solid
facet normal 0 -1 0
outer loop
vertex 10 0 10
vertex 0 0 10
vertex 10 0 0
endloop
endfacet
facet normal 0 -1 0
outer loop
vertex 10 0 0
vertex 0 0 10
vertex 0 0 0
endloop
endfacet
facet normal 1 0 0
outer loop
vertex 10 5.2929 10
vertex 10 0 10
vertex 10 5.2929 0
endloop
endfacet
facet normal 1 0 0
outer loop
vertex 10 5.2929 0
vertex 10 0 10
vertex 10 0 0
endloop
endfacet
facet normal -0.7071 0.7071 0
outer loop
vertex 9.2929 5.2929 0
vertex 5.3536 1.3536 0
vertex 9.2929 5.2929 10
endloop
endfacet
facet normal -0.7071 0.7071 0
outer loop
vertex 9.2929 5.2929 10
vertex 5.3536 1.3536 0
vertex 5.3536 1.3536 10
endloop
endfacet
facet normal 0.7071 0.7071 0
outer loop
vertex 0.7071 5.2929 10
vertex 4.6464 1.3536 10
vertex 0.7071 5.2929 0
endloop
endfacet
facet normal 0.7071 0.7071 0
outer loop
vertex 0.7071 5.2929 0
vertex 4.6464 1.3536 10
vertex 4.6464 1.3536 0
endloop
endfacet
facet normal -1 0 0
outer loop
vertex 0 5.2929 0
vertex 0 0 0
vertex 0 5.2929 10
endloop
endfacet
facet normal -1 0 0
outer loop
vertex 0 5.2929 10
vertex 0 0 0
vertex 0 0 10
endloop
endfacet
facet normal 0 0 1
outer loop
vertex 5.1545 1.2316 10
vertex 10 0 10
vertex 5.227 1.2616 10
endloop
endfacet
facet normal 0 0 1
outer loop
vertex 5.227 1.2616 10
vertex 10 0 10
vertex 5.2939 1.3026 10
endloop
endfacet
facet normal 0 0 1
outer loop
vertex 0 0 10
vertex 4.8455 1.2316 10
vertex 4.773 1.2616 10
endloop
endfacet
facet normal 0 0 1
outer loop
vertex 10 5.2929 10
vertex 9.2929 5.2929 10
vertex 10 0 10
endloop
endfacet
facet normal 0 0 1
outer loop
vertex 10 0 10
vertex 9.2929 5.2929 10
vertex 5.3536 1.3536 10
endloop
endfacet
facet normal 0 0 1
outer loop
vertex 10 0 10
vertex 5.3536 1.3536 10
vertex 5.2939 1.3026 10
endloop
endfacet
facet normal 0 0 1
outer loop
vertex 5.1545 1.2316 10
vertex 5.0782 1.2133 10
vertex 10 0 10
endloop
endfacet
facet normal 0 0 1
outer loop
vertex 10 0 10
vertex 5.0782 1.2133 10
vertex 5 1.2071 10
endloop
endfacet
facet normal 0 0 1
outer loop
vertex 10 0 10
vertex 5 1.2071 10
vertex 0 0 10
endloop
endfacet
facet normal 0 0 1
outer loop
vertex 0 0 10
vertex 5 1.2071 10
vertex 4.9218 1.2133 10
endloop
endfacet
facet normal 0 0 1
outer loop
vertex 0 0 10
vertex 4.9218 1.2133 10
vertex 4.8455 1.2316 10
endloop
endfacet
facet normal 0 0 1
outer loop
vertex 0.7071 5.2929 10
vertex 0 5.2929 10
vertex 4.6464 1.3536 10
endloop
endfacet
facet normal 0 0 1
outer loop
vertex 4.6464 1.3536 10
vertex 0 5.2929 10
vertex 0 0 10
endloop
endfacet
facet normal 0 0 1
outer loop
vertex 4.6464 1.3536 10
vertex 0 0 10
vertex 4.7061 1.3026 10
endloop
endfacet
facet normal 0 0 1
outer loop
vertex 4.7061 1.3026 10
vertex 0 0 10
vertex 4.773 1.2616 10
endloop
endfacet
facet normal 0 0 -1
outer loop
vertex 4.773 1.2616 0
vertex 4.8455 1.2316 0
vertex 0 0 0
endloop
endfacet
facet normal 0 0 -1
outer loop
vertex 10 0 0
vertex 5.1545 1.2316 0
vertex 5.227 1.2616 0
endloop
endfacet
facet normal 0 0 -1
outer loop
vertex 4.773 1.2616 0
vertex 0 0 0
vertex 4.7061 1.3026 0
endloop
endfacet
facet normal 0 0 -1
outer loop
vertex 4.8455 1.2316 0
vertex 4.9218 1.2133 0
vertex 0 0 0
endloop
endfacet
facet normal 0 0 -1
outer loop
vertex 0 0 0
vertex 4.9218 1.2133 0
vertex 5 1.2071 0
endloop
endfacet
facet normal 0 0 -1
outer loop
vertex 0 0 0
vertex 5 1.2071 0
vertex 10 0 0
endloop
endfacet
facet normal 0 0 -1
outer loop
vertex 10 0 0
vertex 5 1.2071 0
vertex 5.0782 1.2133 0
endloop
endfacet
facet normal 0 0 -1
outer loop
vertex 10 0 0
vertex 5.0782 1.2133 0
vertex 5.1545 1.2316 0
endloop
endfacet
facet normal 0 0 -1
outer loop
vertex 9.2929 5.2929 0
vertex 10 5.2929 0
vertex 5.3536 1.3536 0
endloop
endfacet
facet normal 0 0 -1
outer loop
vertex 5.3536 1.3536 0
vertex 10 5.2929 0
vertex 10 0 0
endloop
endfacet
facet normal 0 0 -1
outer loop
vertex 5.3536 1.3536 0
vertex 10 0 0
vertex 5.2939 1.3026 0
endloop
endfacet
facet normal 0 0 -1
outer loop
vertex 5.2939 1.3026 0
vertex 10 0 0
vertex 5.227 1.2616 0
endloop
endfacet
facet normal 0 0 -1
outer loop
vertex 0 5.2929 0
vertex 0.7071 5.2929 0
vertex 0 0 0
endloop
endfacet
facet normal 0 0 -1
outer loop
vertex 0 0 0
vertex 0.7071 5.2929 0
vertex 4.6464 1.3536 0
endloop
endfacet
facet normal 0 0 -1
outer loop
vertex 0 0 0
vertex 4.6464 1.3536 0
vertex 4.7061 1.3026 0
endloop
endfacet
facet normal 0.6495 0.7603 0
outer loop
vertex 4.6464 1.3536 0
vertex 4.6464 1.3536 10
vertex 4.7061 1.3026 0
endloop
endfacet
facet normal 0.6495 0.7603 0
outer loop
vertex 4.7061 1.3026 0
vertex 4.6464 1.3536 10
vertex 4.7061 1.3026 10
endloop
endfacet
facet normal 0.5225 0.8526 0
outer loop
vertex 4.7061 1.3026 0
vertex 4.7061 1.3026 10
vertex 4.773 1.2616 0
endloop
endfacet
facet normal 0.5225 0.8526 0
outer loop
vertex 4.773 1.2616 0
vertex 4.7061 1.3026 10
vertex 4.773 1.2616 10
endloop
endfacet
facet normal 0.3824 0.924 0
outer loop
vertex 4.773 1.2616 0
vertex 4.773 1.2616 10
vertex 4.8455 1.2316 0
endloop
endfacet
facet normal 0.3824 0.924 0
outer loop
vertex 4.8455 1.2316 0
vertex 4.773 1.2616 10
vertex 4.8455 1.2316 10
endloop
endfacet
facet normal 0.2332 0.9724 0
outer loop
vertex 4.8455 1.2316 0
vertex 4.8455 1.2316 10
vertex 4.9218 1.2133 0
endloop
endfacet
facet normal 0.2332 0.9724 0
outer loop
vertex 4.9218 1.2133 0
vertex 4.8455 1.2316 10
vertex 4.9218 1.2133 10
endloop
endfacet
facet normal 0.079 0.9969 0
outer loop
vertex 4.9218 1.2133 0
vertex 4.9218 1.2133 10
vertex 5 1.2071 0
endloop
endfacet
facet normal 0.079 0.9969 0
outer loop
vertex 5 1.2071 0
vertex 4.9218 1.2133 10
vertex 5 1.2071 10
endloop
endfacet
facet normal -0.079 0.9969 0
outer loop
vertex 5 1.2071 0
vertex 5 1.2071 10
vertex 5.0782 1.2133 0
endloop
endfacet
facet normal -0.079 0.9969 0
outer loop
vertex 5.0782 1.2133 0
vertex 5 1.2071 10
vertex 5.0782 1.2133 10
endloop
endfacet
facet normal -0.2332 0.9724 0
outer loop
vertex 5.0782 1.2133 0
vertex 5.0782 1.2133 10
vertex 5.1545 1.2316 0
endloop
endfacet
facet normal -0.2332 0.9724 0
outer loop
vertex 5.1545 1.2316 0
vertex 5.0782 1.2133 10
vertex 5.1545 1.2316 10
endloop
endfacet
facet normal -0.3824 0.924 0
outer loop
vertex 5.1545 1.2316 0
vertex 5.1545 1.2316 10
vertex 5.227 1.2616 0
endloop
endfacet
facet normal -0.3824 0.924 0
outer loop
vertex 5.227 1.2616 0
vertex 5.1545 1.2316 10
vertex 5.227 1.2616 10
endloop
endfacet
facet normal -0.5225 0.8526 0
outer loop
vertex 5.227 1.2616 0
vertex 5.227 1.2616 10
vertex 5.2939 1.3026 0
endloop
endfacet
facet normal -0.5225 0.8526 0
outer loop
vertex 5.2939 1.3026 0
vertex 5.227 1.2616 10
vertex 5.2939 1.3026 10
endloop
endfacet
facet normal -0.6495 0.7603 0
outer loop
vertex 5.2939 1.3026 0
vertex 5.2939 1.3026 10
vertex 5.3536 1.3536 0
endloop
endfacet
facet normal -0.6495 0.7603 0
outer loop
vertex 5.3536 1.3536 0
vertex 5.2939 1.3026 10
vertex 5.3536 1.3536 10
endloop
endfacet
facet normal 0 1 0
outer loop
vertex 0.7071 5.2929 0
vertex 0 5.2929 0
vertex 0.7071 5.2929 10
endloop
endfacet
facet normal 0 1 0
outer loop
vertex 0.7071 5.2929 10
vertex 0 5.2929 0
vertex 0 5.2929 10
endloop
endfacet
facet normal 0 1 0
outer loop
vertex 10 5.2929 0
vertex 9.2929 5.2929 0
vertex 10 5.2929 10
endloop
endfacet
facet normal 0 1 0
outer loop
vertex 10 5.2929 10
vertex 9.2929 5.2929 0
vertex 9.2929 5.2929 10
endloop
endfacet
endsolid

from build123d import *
from OCP.BRepFilletAPI import BRepFilletAPI_MakeChamfer

# Parameters (mm, degrees)
EXTRUDE_1_DEPTH = 10
FILLET_1_R      = 0.5
CHAMFER_1_SIZE  = 1
CHAMFER_1_SIZE2 = 0.707106781


with BuildPart() as part:
    # 草图2 → 凸台-拉伸1 (new body)
    with BuildSketch(Plane.XY):
        Polygon((0, 0), (0, 6), (5, 1), (10, 6), (10, 0), align=None)
    extrude(amount=EXTRUDE_1_DEPTH)

    # 圆角1
    fillet_1_edges = [part.edges().sort_by_distance(p)[0] for p in [
        (5, 1, 5),
    ]]
    fillet(fillet_1_edges, radius=FILLET_1_R)

    # 倒角1: one chamfer whose edges measure the first distance from different faces: ONE call of the kernel's chamfer builder (chamfer() names one face for all edges)
    chamfer_1_edges_1 = [part.edges().sort_by_distance(p)[0] for p in [
        (0, 6, 5),
    ]]
    chamfer_1_side_1 = [part.faces().sort_by_distance(p)[0] for p in [
        (2.323223305, 3.676776695, 5),
    ]]
    chamfer_1_edges_2 = [part.edges().sort_by_distance(p)[0] for p in [
        (10, 6, 5),
    ]]
    chamfer_1_side_2 = [part.faces().sort_by_distance(p)[0] for p in [
        (7.676776695, 3.676776695, 5),
    ]]
    chamfer_1 = BRepFilletAPI_MakeChamfer(part.part.solid().wrapped)
    for e in chamfer_1_edges_1:
        chamfer_1.Add(CHAMFER_1_SIZE, CHAMFER_1_SIZE2, e.wrapped, chamfer_1_side_1[0].wrapped)  # the first distance lies on this face
    for e in chamfer_1_edges_2:
        chamfer_1.Add(CHAMFER_1_SIZE, CHAMFER_1_SIZE2, e.wrapped, chamfer_1_side_2[0].wrapped)  # the first distance lies on this face
    add(Compound.cast(chamfer_1.Shape()), mode=Mode.REPLACE)


solid = part.part
